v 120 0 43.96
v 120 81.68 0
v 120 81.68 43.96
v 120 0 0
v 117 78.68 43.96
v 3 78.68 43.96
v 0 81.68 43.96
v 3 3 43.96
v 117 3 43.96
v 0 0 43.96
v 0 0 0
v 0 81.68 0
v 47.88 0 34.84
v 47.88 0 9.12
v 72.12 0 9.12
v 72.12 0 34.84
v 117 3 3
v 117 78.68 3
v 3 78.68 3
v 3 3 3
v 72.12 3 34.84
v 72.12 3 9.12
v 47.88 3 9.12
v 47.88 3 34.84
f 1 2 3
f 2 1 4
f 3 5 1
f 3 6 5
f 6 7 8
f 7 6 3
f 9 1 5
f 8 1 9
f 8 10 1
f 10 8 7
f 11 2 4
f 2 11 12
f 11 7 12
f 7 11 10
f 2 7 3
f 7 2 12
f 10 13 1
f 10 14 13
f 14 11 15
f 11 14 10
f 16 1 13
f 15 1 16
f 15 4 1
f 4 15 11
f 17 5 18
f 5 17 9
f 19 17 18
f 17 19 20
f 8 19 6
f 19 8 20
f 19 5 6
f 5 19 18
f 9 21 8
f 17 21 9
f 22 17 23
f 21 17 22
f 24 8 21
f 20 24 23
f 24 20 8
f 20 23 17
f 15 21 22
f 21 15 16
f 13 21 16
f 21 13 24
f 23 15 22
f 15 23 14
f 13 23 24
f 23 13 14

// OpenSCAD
/* doodle-meta {"version":1,"parameters":{"width":{"label":"Overall width","description":"Changes the body width","unit":"mm","feature":"body_width"},"depth":{"label":"Overall depth","description":"Changes the body depth","unit":"mm","feature":"body_depth"},"height":{"label":"Overall height","description":"Changes the body height","unit":"mm","feature":"body_height"},"wall_thickness":{"label":"Wall thickness","description":"Changes the thickness of the walls and floor","unit":"mm","feature":"wall_thickness"},"window_width":{"label":"Window width","description":"Changes the width of the front window","unit":"mm","feature":"window"},"window_height":{"label":"Window height","description":"Changes the height of the front window","unit":"mm","feature":"window"}},"features":{"body_width":{"kind":"dimension","axis":"x","label":"Overall width"},"body_depth":{"kind":"dimension","axis":"y","label":"Overall depth"},"body_height":{"kind":"dimension","axis":"z","label":"Overall height"},"wall_thickness":{"kind":"region","label":"Wall thickness","min":[0,0,0],"max":[{"parameter":"wall_thickness","scale":1,"offset":0},{"parameter":"wall_thickness","scale":1,"offset":0},{"parameter":"wall_thickness","scale":1,"offset":0}]},"window":{"kind":"region","label":"Front window","min":[{"parameter":"width","scale":0.5,"offset":-12.12},{"parameter":"depth","scale":0,"offset":0},{"parameter":"height","scale":0.5,"offset":-12.86}],"max":[{"parameter":"width","scale":0.5,"offset":12.12},{"parameter":"depth","scale":1,"offset":0},{"parameter":"height","scale":0.5,"offset":12.86}]}}} */

// Top-level parameters (user-editable)
width = 120.0;
depth = 81.68;
height = 43.96;
wall_thickness = 3.0;
window_width = 24.24;
window_height = 25.72;

// Derived constants (not user-editable)
eps = 0.01;
floor_thickness = wall_thickness;
window_center_z = height / 2.0;

// Module: The complete enclosure body
module enclosure() {
    difference() {
        // 1. Positive Body: Solid block
        cube([width, depth, height]);
        
        // 2. Subtract: Internal Cavity (Open Top)
        // Cuts from Z=floor_thickness up to above the top surface
        translate([wall_thickness, wall_thickness, floor_thickness])
            cube([width - 2*wall_thickness, depth - 2*wall_thickness, height]);
            
        // 3. Subtract: Front Window
        // Cuts through the front wall (Y axis)
        // Centered in X, centered in Z
        translate([width/2 - window_width/2, -eps, window_center_z - window_height/2])
            cube([window_width, wall_thickness + 2*eps, window_height]);
    }
}

// Instantiate the design
enclosure();
